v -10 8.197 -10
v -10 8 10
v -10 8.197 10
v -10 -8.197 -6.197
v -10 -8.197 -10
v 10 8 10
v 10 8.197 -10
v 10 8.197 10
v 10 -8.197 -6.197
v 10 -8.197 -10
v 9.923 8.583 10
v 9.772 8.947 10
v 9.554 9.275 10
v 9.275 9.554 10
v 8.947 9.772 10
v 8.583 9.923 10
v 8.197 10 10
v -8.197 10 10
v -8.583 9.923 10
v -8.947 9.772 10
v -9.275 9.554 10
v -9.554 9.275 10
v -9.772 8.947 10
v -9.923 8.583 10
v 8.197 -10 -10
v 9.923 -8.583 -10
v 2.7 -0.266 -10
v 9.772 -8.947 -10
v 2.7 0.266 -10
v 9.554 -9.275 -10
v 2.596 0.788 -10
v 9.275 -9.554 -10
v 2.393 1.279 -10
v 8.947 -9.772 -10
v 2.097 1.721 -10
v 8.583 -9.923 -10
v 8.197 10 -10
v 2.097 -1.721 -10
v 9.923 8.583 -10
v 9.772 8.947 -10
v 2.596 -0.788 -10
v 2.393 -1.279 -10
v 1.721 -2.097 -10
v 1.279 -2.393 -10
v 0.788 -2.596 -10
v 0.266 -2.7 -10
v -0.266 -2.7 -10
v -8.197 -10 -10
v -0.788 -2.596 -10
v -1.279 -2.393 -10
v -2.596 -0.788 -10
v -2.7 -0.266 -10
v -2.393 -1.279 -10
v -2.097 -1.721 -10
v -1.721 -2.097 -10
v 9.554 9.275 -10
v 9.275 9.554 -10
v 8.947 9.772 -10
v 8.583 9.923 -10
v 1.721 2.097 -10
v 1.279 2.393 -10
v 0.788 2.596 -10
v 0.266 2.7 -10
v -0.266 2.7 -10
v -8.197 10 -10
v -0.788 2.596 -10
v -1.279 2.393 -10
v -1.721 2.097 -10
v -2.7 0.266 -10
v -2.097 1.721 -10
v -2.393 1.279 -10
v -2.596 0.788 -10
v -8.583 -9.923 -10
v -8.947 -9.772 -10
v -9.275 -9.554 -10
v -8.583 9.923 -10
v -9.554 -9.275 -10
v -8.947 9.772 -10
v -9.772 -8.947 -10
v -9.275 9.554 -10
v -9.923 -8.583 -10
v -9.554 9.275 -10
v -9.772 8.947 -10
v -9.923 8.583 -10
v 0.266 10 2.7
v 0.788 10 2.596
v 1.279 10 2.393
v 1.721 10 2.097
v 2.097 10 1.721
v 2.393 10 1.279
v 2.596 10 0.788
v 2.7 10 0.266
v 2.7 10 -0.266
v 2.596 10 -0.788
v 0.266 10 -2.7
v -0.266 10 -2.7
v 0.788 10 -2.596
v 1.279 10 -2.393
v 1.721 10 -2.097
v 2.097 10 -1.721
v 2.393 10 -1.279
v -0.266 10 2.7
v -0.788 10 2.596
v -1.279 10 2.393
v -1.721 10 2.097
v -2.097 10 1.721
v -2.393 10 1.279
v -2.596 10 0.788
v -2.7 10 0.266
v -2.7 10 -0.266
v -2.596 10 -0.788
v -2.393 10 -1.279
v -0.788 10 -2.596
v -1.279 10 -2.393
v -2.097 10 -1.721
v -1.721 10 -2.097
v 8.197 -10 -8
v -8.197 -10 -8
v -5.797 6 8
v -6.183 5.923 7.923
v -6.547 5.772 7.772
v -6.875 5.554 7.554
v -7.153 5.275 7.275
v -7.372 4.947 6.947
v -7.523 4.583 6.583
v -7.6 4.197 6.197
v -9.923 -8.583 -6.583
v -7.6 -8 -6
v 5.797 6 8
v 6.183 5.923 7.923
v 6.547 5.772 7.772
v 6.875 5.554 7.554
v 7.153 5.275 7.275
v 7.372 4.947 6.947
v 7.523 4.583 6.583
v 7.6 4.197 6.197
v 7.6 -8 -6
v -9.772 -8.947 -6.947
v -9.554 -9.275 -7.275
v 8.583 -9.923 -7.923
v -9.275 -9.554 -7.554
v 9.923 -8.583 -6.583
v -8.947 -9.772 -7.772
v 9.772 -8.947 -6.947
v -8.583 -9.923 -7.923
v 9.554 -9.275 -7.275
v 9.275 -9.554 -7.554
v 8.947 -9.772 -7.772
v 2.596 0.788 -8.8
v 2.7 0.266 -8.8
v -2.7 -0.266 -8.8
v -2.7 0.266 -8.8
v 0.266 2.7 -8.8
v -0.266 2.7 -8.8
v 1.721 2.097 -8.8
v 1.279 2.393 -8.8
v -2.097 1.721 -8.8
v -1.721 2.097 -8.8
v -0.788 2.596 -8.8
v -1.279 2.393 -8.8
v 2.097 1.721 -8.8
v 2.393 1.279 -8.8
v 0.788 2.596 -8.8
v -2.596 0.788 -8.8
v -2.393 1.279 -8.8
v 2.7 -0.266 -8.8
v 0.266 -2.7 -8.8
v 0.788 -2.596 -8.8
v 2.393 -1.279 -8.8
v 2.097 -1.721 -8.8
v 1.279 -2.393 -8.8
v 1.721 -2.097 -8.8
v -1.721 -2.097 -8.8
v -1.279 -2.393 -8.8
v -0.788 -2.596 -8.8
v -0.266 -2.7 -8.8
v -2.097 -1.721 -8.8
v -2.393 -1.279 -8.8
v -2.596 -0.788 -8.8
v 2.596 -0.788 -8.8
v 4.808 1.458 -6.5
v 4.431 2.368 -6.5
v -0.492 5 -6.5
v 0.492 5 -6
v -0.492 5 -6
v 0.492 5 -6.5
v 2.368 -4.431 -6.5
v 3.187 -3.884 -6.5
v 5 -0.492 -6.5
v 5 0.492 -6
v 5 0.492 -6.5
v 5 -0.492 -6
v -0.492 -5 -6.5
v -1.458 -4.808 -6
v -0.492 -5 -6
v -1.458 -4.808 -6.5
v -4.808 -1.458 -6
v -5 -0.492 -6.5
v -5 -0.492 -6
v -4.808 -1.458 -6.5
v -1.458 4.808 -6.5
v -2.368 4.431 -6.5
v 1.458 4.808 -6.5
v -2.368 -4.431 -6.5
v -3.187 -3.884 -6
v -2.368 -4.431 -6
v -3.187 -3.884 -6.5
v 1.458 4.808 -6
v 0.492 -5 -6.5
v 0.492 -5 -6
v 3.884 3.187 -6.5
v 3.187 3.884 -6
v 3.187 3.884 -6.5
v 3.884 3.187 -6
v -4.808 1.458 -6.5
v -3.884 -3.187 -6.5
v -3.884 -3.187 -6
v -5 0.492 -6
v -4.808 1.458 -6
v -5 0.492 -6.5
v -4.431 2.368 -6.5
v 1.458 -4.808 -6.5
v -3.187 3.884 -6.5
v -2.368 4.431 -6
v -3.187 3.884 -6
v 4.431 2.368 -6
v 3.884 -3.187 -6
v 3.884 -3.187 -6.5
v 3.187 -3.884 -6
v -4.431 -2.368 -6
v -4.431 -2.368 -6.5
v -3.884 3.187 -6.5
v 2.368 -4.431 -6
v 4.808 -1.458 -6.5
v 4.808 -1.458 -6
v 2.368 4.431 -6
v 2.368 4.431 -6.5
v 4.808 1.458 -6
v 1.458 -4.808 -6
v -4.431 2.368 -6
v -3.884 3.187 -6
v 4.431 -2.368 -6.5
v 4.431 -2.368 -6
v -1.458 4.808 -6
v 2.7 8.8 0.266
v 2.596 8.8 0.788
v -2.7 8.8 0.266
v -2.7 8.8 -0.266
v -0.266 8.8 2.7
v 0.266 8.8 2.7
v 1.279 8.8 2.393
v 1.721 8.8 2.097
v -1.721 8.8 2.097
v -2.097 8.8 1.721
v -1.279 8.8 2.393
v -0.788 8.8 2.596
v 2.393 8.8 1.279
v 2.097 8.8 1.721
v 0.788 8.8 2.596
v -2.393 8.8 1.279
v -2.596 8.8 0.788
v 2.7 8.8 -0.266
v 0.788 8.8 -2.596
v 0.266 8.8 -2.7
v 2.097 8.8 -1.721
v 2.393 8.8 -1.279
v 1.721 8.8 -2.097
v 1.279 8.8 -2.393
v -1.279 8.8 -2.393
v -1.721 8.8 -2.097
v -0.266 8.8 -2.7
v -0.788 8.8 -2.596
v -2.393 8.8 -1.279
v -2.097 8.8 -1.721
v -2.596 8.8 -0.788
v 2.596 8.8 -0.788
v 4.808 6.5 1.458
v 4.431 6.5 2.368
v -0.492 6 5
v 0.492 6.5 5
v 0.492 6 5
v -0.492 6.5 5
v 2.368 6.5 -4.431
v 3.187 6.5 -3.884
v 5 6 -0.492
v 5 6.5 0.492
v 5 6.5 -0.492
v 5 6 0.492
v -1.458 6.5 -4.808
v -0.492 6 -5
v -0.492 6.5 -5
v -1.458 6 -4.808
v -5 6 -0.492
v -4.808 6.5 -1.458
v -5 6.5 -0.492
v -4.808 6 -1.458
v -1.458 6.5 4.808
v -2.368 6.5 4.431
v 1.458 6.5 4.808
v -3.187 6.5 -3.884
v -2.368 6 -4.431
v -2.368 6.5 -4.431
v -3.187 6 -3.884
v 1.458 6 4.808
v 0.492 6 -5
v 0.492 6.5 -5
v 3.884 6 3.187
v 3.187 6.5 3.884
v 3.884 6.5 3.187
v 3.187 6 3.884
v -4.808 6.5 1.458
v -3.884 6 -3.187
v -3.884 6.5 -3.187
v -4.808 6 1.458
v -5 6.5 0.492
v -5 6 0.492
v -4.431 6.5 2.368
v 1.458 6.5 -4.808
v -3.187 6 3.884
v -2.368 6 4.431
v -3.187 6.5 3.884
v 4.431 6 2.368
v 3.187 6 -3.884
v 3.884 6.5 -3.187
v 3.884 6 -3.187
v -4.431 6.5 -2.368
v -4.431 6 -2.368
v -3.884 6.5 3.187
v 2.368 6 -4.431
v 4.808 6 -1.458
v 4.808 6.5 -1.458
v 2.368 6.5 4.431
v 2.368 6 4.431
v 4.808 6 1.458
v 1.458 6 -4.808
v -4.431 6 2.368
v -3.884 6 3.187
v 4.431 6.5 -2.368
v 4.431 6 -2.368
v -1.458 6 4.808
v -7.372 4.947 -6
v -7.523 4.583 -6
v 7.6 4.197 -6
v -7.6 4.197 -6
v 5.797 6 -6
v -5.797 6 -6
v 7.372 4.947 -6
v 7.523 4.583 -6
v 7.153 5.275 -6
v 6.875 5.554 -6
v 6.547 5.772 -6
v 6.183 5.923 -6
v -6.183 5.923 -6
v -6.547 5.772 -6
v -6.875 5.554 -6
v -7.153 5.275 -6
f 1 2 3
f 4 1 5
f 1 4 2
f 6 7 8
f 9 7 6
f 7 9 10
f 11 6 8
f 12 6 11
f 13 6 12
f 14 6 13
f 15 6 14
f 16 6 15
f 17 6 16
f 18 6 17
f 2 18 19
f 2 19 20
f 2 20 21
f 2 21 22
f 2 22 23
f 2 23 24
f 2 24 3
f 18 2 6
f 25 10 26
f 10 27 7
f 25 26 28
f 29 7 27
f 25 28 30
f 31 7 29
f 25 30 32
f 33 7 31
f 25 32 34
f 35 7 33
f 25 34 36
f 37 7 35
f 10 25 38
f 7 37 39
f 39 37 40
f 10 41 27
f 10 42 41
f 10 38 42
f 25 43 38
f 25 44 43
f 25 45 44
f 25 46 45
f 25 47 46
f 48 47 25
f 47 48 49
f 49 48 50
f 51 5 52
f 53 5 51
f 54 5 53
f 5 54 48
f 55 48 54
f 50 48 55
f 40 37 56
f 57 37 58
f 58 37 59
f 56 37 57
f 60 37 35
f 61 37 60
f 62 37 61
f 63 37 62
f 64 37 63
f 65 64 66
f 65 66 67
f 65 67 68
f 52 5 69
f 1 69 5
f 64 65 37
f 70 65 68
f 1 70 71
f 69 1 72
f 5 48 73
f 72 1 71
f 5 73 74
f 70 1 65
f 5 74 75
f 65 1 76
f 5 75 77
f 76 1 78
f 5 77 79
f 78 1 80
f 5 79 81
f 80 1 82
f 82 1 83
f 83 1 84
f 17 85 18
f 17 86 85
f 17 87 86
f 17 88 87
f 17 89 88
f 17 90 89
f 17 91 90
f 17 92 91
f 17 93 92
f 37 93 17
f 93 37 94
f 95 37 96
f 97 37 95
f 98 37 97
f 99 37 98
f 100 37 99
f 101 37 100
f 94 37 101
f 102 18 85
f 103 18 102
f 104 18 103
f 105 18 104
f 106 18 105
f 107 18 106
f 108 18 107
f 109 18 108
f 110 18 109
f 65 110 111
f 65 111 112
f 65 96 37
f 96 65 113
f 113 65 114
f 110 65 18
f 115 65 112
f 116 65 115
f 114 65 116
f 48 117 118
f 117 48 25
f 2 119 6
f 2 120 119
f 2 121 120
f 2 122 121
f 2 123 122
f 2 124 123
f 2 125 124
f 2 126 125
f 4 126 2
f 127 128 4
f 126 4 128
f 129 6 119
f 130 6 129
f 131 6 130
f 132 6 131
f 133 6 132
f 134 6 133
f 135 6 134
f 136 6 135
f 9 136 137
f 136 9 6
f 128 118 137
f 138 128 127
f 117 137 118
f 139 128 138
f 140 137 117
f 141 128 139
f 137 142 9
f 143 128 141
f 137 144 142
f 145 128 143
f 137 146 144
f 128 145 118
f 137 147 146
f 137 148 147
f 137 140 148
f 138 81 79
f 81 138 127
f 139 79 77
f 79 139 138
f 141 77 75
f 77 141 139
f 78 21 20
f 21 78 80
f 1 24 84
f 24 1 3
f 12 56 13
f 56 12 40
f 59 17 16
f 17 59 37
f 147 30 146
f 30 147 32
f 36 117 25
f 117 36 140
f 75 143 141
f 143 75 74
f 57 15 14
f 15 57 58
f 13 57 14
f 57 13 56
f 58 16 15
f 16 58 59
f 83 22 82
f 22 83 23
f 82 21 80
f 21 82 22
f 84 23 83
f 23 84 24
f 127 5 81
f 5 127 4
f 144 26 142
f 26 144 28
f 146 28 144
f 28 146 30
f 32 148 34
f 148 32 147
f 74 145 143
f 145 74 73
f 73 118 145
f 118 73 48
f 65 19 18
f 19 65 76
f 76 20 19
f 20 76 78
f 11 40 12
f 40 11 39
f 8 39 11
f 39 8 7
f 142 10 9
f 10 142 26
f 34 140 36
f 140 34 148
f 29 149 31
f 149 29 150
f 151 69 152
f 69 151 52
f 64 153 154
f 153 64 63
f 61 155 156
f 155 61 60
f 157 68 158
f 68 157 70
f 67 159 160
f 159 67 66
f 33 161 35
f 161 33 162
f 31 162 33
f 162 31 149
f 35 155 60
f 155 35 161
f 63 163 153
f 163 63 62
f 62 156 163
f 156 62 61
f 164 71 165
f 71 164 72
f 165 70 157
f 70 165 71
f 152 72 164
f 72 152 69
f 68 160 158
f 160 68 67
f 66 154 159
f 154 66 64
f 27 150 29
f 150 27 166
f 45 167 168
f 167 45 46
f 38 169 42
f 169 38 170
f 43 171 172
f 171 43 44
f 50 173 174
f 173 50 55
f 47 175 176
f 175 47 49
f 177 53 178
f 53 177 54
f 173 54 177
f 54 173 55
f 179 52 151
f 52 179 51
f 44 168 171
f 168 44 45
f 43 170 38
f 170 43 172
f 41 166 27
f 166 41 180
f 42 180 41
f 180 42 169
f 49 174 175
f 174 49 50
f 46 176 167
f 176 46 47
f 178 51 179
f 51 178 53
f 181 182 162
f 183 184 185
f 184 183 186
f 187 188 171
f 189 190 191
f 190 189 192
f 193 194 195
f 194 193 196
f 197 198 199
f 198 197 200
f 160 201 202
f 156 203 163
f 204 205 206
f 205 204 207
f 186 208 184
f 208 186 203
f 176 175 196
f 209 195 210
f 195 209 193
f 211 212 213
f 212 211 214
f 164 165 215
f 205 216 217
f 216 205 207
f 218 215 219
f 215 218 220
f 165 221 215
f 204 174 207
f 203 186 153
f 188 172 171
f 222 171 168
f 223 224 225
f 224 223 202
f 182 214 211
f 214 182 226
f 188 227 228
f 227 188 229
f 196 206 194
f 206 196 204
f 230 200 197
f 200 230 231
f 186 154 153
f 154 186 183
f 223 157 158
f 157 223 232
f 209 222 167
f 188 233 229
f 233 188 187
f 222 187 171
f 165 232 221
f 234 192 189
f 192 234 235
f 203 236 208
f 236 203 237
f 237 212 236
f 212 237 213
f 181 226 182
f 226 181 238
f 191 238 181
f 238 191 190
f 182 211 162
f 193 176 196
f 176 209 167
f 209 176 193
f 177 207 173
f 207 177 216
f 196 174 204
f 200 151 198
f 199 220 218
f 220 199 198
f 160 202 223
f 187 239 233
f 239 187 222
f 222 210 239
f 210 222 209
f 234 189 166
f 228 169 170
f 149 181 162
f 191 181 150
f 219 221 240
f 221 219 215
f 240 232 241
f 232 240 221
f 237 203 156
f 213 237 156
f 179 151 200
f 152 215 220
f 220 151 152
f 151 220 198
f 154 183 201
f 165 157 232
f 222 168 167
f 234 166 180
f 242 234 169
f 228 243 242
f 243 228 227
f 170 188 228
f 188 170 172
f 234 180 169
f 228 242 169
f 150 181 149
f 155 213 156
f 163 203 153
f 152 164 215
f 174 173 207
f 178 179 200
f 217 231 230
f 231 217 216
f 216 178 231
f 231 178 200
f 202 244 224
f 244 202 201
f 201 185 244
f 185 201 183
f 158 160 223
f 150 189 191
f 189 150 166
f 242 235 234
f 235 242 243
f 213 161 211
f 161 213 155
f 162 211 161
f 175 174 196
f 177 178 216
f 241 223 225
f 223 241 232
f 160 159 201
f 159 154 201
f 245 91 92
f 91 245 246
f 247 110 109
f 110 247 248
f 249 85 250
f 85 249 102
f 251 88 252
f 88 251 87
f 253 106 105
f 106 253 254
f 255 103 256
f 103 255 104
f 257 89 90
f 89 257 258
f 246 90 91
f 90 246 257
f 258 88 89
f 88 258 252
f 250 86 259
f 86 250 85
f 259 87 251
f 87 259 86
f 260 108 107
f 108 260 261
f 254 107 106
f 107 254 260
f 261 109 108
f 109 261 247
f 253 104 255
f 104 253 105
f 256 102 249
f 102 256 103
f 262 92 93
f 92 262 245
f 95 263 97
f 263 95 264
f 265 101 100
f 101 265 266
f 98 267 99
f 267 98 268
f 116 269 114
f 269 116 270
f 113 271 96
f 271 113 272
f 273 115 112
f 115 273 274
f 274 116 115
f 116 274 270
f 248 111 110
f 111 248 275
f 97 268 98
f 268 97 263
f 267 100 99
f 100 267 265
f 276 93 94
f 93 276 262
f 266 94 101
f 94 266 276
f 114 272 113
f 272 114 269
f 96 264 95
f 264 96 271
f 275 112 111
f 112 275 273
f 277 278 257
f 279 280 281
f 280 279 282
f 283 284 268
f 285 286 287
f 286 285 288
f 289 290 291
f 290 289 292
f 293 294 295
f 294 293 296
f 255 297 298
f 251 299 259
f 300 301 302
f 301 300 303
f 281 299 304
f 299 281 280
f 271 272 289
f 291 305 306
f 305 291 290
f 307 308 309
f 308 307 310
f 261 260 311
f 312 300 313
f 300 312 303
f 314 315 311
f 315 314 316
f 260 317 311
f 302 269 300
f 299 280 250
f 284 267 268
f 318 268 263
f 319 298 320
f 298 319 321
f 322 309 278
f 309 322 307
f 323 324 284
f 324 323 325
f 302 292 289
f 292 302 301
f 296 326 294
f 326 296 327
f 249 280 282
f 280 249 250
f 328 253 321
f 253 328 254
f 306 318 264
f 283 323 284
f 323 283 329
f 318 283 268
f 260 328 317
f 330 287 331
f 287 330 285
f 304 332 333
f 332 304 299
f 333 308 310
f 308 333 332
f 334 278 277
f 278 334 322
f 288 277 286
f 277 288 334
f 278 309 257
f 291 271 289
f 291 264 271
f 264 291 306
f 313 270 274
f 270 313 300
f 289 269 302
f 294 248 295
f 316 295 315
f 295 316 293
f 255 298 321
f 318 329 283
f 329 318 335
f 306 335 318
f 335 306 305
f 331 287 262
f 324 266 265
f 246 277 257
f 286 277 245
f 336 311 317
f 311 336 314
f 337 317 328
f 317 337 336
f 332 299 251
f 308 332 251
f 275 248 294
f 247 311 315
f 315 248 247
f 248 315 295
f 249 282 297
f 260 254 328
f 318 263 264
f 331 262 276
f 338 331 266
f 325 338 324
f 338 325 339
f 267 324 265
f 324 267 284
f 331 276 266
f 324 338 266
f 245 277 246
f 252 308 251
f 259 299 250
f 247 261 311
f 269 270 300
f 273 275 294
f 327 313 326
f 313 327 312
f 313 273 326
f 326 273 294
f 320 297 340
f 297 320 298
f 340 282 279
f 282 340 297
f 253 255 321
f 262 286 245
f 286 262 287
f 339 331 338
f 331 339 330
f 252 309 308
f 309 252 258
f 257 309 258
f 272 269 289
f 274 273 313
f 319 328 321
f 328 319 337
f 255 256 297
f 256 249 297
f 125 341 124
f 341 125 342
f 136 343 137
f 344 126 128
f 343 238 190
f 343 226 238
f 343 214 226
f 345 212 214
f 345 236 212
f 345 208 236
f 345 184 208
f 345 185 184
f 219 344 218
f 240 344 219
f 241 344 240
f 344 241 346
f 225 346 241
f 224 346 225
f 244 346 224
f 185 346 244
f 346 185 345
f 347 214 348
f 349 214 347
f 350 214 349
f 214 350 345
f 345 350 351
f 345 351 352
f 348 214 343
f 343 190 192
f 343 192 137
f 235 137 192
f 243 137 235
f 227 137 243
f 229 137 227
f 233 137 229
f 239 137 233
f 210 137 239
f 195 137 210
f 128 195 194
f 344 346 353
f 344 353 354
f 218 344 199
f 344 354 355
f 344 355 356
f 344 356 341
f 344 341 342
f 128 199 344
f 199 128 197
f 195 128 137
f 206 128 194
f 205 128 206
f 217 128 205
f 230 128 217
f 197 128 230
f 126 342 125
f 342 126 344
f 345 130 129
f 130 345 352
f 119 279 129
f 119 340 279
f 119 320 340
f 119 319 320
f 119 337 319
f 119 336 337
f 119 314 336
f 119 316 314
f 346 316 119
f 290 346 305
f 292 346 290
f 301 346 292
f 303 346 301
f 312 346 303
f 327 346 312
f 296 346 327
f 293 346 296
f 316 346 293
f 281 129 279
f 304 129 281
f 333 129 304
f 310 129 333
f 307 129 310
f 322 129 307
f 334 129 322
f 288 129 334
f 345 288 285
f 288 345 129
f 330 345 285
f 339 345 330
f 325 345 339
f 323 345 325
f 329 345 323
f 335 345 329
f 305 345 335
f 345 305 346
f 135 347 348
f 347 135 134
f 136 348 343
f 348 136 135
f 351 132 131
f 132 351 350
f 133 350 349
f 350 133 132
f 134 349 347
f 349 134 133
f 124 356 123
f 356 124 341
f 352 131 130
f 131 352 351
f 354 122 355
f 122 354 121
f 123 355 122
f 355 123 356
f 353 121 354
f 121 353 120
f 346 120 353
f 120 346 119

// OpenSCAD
use <../moar-wheels.scad>;

//rotate([-45,0,0]) {
  corner_bracket_2020();
//}
